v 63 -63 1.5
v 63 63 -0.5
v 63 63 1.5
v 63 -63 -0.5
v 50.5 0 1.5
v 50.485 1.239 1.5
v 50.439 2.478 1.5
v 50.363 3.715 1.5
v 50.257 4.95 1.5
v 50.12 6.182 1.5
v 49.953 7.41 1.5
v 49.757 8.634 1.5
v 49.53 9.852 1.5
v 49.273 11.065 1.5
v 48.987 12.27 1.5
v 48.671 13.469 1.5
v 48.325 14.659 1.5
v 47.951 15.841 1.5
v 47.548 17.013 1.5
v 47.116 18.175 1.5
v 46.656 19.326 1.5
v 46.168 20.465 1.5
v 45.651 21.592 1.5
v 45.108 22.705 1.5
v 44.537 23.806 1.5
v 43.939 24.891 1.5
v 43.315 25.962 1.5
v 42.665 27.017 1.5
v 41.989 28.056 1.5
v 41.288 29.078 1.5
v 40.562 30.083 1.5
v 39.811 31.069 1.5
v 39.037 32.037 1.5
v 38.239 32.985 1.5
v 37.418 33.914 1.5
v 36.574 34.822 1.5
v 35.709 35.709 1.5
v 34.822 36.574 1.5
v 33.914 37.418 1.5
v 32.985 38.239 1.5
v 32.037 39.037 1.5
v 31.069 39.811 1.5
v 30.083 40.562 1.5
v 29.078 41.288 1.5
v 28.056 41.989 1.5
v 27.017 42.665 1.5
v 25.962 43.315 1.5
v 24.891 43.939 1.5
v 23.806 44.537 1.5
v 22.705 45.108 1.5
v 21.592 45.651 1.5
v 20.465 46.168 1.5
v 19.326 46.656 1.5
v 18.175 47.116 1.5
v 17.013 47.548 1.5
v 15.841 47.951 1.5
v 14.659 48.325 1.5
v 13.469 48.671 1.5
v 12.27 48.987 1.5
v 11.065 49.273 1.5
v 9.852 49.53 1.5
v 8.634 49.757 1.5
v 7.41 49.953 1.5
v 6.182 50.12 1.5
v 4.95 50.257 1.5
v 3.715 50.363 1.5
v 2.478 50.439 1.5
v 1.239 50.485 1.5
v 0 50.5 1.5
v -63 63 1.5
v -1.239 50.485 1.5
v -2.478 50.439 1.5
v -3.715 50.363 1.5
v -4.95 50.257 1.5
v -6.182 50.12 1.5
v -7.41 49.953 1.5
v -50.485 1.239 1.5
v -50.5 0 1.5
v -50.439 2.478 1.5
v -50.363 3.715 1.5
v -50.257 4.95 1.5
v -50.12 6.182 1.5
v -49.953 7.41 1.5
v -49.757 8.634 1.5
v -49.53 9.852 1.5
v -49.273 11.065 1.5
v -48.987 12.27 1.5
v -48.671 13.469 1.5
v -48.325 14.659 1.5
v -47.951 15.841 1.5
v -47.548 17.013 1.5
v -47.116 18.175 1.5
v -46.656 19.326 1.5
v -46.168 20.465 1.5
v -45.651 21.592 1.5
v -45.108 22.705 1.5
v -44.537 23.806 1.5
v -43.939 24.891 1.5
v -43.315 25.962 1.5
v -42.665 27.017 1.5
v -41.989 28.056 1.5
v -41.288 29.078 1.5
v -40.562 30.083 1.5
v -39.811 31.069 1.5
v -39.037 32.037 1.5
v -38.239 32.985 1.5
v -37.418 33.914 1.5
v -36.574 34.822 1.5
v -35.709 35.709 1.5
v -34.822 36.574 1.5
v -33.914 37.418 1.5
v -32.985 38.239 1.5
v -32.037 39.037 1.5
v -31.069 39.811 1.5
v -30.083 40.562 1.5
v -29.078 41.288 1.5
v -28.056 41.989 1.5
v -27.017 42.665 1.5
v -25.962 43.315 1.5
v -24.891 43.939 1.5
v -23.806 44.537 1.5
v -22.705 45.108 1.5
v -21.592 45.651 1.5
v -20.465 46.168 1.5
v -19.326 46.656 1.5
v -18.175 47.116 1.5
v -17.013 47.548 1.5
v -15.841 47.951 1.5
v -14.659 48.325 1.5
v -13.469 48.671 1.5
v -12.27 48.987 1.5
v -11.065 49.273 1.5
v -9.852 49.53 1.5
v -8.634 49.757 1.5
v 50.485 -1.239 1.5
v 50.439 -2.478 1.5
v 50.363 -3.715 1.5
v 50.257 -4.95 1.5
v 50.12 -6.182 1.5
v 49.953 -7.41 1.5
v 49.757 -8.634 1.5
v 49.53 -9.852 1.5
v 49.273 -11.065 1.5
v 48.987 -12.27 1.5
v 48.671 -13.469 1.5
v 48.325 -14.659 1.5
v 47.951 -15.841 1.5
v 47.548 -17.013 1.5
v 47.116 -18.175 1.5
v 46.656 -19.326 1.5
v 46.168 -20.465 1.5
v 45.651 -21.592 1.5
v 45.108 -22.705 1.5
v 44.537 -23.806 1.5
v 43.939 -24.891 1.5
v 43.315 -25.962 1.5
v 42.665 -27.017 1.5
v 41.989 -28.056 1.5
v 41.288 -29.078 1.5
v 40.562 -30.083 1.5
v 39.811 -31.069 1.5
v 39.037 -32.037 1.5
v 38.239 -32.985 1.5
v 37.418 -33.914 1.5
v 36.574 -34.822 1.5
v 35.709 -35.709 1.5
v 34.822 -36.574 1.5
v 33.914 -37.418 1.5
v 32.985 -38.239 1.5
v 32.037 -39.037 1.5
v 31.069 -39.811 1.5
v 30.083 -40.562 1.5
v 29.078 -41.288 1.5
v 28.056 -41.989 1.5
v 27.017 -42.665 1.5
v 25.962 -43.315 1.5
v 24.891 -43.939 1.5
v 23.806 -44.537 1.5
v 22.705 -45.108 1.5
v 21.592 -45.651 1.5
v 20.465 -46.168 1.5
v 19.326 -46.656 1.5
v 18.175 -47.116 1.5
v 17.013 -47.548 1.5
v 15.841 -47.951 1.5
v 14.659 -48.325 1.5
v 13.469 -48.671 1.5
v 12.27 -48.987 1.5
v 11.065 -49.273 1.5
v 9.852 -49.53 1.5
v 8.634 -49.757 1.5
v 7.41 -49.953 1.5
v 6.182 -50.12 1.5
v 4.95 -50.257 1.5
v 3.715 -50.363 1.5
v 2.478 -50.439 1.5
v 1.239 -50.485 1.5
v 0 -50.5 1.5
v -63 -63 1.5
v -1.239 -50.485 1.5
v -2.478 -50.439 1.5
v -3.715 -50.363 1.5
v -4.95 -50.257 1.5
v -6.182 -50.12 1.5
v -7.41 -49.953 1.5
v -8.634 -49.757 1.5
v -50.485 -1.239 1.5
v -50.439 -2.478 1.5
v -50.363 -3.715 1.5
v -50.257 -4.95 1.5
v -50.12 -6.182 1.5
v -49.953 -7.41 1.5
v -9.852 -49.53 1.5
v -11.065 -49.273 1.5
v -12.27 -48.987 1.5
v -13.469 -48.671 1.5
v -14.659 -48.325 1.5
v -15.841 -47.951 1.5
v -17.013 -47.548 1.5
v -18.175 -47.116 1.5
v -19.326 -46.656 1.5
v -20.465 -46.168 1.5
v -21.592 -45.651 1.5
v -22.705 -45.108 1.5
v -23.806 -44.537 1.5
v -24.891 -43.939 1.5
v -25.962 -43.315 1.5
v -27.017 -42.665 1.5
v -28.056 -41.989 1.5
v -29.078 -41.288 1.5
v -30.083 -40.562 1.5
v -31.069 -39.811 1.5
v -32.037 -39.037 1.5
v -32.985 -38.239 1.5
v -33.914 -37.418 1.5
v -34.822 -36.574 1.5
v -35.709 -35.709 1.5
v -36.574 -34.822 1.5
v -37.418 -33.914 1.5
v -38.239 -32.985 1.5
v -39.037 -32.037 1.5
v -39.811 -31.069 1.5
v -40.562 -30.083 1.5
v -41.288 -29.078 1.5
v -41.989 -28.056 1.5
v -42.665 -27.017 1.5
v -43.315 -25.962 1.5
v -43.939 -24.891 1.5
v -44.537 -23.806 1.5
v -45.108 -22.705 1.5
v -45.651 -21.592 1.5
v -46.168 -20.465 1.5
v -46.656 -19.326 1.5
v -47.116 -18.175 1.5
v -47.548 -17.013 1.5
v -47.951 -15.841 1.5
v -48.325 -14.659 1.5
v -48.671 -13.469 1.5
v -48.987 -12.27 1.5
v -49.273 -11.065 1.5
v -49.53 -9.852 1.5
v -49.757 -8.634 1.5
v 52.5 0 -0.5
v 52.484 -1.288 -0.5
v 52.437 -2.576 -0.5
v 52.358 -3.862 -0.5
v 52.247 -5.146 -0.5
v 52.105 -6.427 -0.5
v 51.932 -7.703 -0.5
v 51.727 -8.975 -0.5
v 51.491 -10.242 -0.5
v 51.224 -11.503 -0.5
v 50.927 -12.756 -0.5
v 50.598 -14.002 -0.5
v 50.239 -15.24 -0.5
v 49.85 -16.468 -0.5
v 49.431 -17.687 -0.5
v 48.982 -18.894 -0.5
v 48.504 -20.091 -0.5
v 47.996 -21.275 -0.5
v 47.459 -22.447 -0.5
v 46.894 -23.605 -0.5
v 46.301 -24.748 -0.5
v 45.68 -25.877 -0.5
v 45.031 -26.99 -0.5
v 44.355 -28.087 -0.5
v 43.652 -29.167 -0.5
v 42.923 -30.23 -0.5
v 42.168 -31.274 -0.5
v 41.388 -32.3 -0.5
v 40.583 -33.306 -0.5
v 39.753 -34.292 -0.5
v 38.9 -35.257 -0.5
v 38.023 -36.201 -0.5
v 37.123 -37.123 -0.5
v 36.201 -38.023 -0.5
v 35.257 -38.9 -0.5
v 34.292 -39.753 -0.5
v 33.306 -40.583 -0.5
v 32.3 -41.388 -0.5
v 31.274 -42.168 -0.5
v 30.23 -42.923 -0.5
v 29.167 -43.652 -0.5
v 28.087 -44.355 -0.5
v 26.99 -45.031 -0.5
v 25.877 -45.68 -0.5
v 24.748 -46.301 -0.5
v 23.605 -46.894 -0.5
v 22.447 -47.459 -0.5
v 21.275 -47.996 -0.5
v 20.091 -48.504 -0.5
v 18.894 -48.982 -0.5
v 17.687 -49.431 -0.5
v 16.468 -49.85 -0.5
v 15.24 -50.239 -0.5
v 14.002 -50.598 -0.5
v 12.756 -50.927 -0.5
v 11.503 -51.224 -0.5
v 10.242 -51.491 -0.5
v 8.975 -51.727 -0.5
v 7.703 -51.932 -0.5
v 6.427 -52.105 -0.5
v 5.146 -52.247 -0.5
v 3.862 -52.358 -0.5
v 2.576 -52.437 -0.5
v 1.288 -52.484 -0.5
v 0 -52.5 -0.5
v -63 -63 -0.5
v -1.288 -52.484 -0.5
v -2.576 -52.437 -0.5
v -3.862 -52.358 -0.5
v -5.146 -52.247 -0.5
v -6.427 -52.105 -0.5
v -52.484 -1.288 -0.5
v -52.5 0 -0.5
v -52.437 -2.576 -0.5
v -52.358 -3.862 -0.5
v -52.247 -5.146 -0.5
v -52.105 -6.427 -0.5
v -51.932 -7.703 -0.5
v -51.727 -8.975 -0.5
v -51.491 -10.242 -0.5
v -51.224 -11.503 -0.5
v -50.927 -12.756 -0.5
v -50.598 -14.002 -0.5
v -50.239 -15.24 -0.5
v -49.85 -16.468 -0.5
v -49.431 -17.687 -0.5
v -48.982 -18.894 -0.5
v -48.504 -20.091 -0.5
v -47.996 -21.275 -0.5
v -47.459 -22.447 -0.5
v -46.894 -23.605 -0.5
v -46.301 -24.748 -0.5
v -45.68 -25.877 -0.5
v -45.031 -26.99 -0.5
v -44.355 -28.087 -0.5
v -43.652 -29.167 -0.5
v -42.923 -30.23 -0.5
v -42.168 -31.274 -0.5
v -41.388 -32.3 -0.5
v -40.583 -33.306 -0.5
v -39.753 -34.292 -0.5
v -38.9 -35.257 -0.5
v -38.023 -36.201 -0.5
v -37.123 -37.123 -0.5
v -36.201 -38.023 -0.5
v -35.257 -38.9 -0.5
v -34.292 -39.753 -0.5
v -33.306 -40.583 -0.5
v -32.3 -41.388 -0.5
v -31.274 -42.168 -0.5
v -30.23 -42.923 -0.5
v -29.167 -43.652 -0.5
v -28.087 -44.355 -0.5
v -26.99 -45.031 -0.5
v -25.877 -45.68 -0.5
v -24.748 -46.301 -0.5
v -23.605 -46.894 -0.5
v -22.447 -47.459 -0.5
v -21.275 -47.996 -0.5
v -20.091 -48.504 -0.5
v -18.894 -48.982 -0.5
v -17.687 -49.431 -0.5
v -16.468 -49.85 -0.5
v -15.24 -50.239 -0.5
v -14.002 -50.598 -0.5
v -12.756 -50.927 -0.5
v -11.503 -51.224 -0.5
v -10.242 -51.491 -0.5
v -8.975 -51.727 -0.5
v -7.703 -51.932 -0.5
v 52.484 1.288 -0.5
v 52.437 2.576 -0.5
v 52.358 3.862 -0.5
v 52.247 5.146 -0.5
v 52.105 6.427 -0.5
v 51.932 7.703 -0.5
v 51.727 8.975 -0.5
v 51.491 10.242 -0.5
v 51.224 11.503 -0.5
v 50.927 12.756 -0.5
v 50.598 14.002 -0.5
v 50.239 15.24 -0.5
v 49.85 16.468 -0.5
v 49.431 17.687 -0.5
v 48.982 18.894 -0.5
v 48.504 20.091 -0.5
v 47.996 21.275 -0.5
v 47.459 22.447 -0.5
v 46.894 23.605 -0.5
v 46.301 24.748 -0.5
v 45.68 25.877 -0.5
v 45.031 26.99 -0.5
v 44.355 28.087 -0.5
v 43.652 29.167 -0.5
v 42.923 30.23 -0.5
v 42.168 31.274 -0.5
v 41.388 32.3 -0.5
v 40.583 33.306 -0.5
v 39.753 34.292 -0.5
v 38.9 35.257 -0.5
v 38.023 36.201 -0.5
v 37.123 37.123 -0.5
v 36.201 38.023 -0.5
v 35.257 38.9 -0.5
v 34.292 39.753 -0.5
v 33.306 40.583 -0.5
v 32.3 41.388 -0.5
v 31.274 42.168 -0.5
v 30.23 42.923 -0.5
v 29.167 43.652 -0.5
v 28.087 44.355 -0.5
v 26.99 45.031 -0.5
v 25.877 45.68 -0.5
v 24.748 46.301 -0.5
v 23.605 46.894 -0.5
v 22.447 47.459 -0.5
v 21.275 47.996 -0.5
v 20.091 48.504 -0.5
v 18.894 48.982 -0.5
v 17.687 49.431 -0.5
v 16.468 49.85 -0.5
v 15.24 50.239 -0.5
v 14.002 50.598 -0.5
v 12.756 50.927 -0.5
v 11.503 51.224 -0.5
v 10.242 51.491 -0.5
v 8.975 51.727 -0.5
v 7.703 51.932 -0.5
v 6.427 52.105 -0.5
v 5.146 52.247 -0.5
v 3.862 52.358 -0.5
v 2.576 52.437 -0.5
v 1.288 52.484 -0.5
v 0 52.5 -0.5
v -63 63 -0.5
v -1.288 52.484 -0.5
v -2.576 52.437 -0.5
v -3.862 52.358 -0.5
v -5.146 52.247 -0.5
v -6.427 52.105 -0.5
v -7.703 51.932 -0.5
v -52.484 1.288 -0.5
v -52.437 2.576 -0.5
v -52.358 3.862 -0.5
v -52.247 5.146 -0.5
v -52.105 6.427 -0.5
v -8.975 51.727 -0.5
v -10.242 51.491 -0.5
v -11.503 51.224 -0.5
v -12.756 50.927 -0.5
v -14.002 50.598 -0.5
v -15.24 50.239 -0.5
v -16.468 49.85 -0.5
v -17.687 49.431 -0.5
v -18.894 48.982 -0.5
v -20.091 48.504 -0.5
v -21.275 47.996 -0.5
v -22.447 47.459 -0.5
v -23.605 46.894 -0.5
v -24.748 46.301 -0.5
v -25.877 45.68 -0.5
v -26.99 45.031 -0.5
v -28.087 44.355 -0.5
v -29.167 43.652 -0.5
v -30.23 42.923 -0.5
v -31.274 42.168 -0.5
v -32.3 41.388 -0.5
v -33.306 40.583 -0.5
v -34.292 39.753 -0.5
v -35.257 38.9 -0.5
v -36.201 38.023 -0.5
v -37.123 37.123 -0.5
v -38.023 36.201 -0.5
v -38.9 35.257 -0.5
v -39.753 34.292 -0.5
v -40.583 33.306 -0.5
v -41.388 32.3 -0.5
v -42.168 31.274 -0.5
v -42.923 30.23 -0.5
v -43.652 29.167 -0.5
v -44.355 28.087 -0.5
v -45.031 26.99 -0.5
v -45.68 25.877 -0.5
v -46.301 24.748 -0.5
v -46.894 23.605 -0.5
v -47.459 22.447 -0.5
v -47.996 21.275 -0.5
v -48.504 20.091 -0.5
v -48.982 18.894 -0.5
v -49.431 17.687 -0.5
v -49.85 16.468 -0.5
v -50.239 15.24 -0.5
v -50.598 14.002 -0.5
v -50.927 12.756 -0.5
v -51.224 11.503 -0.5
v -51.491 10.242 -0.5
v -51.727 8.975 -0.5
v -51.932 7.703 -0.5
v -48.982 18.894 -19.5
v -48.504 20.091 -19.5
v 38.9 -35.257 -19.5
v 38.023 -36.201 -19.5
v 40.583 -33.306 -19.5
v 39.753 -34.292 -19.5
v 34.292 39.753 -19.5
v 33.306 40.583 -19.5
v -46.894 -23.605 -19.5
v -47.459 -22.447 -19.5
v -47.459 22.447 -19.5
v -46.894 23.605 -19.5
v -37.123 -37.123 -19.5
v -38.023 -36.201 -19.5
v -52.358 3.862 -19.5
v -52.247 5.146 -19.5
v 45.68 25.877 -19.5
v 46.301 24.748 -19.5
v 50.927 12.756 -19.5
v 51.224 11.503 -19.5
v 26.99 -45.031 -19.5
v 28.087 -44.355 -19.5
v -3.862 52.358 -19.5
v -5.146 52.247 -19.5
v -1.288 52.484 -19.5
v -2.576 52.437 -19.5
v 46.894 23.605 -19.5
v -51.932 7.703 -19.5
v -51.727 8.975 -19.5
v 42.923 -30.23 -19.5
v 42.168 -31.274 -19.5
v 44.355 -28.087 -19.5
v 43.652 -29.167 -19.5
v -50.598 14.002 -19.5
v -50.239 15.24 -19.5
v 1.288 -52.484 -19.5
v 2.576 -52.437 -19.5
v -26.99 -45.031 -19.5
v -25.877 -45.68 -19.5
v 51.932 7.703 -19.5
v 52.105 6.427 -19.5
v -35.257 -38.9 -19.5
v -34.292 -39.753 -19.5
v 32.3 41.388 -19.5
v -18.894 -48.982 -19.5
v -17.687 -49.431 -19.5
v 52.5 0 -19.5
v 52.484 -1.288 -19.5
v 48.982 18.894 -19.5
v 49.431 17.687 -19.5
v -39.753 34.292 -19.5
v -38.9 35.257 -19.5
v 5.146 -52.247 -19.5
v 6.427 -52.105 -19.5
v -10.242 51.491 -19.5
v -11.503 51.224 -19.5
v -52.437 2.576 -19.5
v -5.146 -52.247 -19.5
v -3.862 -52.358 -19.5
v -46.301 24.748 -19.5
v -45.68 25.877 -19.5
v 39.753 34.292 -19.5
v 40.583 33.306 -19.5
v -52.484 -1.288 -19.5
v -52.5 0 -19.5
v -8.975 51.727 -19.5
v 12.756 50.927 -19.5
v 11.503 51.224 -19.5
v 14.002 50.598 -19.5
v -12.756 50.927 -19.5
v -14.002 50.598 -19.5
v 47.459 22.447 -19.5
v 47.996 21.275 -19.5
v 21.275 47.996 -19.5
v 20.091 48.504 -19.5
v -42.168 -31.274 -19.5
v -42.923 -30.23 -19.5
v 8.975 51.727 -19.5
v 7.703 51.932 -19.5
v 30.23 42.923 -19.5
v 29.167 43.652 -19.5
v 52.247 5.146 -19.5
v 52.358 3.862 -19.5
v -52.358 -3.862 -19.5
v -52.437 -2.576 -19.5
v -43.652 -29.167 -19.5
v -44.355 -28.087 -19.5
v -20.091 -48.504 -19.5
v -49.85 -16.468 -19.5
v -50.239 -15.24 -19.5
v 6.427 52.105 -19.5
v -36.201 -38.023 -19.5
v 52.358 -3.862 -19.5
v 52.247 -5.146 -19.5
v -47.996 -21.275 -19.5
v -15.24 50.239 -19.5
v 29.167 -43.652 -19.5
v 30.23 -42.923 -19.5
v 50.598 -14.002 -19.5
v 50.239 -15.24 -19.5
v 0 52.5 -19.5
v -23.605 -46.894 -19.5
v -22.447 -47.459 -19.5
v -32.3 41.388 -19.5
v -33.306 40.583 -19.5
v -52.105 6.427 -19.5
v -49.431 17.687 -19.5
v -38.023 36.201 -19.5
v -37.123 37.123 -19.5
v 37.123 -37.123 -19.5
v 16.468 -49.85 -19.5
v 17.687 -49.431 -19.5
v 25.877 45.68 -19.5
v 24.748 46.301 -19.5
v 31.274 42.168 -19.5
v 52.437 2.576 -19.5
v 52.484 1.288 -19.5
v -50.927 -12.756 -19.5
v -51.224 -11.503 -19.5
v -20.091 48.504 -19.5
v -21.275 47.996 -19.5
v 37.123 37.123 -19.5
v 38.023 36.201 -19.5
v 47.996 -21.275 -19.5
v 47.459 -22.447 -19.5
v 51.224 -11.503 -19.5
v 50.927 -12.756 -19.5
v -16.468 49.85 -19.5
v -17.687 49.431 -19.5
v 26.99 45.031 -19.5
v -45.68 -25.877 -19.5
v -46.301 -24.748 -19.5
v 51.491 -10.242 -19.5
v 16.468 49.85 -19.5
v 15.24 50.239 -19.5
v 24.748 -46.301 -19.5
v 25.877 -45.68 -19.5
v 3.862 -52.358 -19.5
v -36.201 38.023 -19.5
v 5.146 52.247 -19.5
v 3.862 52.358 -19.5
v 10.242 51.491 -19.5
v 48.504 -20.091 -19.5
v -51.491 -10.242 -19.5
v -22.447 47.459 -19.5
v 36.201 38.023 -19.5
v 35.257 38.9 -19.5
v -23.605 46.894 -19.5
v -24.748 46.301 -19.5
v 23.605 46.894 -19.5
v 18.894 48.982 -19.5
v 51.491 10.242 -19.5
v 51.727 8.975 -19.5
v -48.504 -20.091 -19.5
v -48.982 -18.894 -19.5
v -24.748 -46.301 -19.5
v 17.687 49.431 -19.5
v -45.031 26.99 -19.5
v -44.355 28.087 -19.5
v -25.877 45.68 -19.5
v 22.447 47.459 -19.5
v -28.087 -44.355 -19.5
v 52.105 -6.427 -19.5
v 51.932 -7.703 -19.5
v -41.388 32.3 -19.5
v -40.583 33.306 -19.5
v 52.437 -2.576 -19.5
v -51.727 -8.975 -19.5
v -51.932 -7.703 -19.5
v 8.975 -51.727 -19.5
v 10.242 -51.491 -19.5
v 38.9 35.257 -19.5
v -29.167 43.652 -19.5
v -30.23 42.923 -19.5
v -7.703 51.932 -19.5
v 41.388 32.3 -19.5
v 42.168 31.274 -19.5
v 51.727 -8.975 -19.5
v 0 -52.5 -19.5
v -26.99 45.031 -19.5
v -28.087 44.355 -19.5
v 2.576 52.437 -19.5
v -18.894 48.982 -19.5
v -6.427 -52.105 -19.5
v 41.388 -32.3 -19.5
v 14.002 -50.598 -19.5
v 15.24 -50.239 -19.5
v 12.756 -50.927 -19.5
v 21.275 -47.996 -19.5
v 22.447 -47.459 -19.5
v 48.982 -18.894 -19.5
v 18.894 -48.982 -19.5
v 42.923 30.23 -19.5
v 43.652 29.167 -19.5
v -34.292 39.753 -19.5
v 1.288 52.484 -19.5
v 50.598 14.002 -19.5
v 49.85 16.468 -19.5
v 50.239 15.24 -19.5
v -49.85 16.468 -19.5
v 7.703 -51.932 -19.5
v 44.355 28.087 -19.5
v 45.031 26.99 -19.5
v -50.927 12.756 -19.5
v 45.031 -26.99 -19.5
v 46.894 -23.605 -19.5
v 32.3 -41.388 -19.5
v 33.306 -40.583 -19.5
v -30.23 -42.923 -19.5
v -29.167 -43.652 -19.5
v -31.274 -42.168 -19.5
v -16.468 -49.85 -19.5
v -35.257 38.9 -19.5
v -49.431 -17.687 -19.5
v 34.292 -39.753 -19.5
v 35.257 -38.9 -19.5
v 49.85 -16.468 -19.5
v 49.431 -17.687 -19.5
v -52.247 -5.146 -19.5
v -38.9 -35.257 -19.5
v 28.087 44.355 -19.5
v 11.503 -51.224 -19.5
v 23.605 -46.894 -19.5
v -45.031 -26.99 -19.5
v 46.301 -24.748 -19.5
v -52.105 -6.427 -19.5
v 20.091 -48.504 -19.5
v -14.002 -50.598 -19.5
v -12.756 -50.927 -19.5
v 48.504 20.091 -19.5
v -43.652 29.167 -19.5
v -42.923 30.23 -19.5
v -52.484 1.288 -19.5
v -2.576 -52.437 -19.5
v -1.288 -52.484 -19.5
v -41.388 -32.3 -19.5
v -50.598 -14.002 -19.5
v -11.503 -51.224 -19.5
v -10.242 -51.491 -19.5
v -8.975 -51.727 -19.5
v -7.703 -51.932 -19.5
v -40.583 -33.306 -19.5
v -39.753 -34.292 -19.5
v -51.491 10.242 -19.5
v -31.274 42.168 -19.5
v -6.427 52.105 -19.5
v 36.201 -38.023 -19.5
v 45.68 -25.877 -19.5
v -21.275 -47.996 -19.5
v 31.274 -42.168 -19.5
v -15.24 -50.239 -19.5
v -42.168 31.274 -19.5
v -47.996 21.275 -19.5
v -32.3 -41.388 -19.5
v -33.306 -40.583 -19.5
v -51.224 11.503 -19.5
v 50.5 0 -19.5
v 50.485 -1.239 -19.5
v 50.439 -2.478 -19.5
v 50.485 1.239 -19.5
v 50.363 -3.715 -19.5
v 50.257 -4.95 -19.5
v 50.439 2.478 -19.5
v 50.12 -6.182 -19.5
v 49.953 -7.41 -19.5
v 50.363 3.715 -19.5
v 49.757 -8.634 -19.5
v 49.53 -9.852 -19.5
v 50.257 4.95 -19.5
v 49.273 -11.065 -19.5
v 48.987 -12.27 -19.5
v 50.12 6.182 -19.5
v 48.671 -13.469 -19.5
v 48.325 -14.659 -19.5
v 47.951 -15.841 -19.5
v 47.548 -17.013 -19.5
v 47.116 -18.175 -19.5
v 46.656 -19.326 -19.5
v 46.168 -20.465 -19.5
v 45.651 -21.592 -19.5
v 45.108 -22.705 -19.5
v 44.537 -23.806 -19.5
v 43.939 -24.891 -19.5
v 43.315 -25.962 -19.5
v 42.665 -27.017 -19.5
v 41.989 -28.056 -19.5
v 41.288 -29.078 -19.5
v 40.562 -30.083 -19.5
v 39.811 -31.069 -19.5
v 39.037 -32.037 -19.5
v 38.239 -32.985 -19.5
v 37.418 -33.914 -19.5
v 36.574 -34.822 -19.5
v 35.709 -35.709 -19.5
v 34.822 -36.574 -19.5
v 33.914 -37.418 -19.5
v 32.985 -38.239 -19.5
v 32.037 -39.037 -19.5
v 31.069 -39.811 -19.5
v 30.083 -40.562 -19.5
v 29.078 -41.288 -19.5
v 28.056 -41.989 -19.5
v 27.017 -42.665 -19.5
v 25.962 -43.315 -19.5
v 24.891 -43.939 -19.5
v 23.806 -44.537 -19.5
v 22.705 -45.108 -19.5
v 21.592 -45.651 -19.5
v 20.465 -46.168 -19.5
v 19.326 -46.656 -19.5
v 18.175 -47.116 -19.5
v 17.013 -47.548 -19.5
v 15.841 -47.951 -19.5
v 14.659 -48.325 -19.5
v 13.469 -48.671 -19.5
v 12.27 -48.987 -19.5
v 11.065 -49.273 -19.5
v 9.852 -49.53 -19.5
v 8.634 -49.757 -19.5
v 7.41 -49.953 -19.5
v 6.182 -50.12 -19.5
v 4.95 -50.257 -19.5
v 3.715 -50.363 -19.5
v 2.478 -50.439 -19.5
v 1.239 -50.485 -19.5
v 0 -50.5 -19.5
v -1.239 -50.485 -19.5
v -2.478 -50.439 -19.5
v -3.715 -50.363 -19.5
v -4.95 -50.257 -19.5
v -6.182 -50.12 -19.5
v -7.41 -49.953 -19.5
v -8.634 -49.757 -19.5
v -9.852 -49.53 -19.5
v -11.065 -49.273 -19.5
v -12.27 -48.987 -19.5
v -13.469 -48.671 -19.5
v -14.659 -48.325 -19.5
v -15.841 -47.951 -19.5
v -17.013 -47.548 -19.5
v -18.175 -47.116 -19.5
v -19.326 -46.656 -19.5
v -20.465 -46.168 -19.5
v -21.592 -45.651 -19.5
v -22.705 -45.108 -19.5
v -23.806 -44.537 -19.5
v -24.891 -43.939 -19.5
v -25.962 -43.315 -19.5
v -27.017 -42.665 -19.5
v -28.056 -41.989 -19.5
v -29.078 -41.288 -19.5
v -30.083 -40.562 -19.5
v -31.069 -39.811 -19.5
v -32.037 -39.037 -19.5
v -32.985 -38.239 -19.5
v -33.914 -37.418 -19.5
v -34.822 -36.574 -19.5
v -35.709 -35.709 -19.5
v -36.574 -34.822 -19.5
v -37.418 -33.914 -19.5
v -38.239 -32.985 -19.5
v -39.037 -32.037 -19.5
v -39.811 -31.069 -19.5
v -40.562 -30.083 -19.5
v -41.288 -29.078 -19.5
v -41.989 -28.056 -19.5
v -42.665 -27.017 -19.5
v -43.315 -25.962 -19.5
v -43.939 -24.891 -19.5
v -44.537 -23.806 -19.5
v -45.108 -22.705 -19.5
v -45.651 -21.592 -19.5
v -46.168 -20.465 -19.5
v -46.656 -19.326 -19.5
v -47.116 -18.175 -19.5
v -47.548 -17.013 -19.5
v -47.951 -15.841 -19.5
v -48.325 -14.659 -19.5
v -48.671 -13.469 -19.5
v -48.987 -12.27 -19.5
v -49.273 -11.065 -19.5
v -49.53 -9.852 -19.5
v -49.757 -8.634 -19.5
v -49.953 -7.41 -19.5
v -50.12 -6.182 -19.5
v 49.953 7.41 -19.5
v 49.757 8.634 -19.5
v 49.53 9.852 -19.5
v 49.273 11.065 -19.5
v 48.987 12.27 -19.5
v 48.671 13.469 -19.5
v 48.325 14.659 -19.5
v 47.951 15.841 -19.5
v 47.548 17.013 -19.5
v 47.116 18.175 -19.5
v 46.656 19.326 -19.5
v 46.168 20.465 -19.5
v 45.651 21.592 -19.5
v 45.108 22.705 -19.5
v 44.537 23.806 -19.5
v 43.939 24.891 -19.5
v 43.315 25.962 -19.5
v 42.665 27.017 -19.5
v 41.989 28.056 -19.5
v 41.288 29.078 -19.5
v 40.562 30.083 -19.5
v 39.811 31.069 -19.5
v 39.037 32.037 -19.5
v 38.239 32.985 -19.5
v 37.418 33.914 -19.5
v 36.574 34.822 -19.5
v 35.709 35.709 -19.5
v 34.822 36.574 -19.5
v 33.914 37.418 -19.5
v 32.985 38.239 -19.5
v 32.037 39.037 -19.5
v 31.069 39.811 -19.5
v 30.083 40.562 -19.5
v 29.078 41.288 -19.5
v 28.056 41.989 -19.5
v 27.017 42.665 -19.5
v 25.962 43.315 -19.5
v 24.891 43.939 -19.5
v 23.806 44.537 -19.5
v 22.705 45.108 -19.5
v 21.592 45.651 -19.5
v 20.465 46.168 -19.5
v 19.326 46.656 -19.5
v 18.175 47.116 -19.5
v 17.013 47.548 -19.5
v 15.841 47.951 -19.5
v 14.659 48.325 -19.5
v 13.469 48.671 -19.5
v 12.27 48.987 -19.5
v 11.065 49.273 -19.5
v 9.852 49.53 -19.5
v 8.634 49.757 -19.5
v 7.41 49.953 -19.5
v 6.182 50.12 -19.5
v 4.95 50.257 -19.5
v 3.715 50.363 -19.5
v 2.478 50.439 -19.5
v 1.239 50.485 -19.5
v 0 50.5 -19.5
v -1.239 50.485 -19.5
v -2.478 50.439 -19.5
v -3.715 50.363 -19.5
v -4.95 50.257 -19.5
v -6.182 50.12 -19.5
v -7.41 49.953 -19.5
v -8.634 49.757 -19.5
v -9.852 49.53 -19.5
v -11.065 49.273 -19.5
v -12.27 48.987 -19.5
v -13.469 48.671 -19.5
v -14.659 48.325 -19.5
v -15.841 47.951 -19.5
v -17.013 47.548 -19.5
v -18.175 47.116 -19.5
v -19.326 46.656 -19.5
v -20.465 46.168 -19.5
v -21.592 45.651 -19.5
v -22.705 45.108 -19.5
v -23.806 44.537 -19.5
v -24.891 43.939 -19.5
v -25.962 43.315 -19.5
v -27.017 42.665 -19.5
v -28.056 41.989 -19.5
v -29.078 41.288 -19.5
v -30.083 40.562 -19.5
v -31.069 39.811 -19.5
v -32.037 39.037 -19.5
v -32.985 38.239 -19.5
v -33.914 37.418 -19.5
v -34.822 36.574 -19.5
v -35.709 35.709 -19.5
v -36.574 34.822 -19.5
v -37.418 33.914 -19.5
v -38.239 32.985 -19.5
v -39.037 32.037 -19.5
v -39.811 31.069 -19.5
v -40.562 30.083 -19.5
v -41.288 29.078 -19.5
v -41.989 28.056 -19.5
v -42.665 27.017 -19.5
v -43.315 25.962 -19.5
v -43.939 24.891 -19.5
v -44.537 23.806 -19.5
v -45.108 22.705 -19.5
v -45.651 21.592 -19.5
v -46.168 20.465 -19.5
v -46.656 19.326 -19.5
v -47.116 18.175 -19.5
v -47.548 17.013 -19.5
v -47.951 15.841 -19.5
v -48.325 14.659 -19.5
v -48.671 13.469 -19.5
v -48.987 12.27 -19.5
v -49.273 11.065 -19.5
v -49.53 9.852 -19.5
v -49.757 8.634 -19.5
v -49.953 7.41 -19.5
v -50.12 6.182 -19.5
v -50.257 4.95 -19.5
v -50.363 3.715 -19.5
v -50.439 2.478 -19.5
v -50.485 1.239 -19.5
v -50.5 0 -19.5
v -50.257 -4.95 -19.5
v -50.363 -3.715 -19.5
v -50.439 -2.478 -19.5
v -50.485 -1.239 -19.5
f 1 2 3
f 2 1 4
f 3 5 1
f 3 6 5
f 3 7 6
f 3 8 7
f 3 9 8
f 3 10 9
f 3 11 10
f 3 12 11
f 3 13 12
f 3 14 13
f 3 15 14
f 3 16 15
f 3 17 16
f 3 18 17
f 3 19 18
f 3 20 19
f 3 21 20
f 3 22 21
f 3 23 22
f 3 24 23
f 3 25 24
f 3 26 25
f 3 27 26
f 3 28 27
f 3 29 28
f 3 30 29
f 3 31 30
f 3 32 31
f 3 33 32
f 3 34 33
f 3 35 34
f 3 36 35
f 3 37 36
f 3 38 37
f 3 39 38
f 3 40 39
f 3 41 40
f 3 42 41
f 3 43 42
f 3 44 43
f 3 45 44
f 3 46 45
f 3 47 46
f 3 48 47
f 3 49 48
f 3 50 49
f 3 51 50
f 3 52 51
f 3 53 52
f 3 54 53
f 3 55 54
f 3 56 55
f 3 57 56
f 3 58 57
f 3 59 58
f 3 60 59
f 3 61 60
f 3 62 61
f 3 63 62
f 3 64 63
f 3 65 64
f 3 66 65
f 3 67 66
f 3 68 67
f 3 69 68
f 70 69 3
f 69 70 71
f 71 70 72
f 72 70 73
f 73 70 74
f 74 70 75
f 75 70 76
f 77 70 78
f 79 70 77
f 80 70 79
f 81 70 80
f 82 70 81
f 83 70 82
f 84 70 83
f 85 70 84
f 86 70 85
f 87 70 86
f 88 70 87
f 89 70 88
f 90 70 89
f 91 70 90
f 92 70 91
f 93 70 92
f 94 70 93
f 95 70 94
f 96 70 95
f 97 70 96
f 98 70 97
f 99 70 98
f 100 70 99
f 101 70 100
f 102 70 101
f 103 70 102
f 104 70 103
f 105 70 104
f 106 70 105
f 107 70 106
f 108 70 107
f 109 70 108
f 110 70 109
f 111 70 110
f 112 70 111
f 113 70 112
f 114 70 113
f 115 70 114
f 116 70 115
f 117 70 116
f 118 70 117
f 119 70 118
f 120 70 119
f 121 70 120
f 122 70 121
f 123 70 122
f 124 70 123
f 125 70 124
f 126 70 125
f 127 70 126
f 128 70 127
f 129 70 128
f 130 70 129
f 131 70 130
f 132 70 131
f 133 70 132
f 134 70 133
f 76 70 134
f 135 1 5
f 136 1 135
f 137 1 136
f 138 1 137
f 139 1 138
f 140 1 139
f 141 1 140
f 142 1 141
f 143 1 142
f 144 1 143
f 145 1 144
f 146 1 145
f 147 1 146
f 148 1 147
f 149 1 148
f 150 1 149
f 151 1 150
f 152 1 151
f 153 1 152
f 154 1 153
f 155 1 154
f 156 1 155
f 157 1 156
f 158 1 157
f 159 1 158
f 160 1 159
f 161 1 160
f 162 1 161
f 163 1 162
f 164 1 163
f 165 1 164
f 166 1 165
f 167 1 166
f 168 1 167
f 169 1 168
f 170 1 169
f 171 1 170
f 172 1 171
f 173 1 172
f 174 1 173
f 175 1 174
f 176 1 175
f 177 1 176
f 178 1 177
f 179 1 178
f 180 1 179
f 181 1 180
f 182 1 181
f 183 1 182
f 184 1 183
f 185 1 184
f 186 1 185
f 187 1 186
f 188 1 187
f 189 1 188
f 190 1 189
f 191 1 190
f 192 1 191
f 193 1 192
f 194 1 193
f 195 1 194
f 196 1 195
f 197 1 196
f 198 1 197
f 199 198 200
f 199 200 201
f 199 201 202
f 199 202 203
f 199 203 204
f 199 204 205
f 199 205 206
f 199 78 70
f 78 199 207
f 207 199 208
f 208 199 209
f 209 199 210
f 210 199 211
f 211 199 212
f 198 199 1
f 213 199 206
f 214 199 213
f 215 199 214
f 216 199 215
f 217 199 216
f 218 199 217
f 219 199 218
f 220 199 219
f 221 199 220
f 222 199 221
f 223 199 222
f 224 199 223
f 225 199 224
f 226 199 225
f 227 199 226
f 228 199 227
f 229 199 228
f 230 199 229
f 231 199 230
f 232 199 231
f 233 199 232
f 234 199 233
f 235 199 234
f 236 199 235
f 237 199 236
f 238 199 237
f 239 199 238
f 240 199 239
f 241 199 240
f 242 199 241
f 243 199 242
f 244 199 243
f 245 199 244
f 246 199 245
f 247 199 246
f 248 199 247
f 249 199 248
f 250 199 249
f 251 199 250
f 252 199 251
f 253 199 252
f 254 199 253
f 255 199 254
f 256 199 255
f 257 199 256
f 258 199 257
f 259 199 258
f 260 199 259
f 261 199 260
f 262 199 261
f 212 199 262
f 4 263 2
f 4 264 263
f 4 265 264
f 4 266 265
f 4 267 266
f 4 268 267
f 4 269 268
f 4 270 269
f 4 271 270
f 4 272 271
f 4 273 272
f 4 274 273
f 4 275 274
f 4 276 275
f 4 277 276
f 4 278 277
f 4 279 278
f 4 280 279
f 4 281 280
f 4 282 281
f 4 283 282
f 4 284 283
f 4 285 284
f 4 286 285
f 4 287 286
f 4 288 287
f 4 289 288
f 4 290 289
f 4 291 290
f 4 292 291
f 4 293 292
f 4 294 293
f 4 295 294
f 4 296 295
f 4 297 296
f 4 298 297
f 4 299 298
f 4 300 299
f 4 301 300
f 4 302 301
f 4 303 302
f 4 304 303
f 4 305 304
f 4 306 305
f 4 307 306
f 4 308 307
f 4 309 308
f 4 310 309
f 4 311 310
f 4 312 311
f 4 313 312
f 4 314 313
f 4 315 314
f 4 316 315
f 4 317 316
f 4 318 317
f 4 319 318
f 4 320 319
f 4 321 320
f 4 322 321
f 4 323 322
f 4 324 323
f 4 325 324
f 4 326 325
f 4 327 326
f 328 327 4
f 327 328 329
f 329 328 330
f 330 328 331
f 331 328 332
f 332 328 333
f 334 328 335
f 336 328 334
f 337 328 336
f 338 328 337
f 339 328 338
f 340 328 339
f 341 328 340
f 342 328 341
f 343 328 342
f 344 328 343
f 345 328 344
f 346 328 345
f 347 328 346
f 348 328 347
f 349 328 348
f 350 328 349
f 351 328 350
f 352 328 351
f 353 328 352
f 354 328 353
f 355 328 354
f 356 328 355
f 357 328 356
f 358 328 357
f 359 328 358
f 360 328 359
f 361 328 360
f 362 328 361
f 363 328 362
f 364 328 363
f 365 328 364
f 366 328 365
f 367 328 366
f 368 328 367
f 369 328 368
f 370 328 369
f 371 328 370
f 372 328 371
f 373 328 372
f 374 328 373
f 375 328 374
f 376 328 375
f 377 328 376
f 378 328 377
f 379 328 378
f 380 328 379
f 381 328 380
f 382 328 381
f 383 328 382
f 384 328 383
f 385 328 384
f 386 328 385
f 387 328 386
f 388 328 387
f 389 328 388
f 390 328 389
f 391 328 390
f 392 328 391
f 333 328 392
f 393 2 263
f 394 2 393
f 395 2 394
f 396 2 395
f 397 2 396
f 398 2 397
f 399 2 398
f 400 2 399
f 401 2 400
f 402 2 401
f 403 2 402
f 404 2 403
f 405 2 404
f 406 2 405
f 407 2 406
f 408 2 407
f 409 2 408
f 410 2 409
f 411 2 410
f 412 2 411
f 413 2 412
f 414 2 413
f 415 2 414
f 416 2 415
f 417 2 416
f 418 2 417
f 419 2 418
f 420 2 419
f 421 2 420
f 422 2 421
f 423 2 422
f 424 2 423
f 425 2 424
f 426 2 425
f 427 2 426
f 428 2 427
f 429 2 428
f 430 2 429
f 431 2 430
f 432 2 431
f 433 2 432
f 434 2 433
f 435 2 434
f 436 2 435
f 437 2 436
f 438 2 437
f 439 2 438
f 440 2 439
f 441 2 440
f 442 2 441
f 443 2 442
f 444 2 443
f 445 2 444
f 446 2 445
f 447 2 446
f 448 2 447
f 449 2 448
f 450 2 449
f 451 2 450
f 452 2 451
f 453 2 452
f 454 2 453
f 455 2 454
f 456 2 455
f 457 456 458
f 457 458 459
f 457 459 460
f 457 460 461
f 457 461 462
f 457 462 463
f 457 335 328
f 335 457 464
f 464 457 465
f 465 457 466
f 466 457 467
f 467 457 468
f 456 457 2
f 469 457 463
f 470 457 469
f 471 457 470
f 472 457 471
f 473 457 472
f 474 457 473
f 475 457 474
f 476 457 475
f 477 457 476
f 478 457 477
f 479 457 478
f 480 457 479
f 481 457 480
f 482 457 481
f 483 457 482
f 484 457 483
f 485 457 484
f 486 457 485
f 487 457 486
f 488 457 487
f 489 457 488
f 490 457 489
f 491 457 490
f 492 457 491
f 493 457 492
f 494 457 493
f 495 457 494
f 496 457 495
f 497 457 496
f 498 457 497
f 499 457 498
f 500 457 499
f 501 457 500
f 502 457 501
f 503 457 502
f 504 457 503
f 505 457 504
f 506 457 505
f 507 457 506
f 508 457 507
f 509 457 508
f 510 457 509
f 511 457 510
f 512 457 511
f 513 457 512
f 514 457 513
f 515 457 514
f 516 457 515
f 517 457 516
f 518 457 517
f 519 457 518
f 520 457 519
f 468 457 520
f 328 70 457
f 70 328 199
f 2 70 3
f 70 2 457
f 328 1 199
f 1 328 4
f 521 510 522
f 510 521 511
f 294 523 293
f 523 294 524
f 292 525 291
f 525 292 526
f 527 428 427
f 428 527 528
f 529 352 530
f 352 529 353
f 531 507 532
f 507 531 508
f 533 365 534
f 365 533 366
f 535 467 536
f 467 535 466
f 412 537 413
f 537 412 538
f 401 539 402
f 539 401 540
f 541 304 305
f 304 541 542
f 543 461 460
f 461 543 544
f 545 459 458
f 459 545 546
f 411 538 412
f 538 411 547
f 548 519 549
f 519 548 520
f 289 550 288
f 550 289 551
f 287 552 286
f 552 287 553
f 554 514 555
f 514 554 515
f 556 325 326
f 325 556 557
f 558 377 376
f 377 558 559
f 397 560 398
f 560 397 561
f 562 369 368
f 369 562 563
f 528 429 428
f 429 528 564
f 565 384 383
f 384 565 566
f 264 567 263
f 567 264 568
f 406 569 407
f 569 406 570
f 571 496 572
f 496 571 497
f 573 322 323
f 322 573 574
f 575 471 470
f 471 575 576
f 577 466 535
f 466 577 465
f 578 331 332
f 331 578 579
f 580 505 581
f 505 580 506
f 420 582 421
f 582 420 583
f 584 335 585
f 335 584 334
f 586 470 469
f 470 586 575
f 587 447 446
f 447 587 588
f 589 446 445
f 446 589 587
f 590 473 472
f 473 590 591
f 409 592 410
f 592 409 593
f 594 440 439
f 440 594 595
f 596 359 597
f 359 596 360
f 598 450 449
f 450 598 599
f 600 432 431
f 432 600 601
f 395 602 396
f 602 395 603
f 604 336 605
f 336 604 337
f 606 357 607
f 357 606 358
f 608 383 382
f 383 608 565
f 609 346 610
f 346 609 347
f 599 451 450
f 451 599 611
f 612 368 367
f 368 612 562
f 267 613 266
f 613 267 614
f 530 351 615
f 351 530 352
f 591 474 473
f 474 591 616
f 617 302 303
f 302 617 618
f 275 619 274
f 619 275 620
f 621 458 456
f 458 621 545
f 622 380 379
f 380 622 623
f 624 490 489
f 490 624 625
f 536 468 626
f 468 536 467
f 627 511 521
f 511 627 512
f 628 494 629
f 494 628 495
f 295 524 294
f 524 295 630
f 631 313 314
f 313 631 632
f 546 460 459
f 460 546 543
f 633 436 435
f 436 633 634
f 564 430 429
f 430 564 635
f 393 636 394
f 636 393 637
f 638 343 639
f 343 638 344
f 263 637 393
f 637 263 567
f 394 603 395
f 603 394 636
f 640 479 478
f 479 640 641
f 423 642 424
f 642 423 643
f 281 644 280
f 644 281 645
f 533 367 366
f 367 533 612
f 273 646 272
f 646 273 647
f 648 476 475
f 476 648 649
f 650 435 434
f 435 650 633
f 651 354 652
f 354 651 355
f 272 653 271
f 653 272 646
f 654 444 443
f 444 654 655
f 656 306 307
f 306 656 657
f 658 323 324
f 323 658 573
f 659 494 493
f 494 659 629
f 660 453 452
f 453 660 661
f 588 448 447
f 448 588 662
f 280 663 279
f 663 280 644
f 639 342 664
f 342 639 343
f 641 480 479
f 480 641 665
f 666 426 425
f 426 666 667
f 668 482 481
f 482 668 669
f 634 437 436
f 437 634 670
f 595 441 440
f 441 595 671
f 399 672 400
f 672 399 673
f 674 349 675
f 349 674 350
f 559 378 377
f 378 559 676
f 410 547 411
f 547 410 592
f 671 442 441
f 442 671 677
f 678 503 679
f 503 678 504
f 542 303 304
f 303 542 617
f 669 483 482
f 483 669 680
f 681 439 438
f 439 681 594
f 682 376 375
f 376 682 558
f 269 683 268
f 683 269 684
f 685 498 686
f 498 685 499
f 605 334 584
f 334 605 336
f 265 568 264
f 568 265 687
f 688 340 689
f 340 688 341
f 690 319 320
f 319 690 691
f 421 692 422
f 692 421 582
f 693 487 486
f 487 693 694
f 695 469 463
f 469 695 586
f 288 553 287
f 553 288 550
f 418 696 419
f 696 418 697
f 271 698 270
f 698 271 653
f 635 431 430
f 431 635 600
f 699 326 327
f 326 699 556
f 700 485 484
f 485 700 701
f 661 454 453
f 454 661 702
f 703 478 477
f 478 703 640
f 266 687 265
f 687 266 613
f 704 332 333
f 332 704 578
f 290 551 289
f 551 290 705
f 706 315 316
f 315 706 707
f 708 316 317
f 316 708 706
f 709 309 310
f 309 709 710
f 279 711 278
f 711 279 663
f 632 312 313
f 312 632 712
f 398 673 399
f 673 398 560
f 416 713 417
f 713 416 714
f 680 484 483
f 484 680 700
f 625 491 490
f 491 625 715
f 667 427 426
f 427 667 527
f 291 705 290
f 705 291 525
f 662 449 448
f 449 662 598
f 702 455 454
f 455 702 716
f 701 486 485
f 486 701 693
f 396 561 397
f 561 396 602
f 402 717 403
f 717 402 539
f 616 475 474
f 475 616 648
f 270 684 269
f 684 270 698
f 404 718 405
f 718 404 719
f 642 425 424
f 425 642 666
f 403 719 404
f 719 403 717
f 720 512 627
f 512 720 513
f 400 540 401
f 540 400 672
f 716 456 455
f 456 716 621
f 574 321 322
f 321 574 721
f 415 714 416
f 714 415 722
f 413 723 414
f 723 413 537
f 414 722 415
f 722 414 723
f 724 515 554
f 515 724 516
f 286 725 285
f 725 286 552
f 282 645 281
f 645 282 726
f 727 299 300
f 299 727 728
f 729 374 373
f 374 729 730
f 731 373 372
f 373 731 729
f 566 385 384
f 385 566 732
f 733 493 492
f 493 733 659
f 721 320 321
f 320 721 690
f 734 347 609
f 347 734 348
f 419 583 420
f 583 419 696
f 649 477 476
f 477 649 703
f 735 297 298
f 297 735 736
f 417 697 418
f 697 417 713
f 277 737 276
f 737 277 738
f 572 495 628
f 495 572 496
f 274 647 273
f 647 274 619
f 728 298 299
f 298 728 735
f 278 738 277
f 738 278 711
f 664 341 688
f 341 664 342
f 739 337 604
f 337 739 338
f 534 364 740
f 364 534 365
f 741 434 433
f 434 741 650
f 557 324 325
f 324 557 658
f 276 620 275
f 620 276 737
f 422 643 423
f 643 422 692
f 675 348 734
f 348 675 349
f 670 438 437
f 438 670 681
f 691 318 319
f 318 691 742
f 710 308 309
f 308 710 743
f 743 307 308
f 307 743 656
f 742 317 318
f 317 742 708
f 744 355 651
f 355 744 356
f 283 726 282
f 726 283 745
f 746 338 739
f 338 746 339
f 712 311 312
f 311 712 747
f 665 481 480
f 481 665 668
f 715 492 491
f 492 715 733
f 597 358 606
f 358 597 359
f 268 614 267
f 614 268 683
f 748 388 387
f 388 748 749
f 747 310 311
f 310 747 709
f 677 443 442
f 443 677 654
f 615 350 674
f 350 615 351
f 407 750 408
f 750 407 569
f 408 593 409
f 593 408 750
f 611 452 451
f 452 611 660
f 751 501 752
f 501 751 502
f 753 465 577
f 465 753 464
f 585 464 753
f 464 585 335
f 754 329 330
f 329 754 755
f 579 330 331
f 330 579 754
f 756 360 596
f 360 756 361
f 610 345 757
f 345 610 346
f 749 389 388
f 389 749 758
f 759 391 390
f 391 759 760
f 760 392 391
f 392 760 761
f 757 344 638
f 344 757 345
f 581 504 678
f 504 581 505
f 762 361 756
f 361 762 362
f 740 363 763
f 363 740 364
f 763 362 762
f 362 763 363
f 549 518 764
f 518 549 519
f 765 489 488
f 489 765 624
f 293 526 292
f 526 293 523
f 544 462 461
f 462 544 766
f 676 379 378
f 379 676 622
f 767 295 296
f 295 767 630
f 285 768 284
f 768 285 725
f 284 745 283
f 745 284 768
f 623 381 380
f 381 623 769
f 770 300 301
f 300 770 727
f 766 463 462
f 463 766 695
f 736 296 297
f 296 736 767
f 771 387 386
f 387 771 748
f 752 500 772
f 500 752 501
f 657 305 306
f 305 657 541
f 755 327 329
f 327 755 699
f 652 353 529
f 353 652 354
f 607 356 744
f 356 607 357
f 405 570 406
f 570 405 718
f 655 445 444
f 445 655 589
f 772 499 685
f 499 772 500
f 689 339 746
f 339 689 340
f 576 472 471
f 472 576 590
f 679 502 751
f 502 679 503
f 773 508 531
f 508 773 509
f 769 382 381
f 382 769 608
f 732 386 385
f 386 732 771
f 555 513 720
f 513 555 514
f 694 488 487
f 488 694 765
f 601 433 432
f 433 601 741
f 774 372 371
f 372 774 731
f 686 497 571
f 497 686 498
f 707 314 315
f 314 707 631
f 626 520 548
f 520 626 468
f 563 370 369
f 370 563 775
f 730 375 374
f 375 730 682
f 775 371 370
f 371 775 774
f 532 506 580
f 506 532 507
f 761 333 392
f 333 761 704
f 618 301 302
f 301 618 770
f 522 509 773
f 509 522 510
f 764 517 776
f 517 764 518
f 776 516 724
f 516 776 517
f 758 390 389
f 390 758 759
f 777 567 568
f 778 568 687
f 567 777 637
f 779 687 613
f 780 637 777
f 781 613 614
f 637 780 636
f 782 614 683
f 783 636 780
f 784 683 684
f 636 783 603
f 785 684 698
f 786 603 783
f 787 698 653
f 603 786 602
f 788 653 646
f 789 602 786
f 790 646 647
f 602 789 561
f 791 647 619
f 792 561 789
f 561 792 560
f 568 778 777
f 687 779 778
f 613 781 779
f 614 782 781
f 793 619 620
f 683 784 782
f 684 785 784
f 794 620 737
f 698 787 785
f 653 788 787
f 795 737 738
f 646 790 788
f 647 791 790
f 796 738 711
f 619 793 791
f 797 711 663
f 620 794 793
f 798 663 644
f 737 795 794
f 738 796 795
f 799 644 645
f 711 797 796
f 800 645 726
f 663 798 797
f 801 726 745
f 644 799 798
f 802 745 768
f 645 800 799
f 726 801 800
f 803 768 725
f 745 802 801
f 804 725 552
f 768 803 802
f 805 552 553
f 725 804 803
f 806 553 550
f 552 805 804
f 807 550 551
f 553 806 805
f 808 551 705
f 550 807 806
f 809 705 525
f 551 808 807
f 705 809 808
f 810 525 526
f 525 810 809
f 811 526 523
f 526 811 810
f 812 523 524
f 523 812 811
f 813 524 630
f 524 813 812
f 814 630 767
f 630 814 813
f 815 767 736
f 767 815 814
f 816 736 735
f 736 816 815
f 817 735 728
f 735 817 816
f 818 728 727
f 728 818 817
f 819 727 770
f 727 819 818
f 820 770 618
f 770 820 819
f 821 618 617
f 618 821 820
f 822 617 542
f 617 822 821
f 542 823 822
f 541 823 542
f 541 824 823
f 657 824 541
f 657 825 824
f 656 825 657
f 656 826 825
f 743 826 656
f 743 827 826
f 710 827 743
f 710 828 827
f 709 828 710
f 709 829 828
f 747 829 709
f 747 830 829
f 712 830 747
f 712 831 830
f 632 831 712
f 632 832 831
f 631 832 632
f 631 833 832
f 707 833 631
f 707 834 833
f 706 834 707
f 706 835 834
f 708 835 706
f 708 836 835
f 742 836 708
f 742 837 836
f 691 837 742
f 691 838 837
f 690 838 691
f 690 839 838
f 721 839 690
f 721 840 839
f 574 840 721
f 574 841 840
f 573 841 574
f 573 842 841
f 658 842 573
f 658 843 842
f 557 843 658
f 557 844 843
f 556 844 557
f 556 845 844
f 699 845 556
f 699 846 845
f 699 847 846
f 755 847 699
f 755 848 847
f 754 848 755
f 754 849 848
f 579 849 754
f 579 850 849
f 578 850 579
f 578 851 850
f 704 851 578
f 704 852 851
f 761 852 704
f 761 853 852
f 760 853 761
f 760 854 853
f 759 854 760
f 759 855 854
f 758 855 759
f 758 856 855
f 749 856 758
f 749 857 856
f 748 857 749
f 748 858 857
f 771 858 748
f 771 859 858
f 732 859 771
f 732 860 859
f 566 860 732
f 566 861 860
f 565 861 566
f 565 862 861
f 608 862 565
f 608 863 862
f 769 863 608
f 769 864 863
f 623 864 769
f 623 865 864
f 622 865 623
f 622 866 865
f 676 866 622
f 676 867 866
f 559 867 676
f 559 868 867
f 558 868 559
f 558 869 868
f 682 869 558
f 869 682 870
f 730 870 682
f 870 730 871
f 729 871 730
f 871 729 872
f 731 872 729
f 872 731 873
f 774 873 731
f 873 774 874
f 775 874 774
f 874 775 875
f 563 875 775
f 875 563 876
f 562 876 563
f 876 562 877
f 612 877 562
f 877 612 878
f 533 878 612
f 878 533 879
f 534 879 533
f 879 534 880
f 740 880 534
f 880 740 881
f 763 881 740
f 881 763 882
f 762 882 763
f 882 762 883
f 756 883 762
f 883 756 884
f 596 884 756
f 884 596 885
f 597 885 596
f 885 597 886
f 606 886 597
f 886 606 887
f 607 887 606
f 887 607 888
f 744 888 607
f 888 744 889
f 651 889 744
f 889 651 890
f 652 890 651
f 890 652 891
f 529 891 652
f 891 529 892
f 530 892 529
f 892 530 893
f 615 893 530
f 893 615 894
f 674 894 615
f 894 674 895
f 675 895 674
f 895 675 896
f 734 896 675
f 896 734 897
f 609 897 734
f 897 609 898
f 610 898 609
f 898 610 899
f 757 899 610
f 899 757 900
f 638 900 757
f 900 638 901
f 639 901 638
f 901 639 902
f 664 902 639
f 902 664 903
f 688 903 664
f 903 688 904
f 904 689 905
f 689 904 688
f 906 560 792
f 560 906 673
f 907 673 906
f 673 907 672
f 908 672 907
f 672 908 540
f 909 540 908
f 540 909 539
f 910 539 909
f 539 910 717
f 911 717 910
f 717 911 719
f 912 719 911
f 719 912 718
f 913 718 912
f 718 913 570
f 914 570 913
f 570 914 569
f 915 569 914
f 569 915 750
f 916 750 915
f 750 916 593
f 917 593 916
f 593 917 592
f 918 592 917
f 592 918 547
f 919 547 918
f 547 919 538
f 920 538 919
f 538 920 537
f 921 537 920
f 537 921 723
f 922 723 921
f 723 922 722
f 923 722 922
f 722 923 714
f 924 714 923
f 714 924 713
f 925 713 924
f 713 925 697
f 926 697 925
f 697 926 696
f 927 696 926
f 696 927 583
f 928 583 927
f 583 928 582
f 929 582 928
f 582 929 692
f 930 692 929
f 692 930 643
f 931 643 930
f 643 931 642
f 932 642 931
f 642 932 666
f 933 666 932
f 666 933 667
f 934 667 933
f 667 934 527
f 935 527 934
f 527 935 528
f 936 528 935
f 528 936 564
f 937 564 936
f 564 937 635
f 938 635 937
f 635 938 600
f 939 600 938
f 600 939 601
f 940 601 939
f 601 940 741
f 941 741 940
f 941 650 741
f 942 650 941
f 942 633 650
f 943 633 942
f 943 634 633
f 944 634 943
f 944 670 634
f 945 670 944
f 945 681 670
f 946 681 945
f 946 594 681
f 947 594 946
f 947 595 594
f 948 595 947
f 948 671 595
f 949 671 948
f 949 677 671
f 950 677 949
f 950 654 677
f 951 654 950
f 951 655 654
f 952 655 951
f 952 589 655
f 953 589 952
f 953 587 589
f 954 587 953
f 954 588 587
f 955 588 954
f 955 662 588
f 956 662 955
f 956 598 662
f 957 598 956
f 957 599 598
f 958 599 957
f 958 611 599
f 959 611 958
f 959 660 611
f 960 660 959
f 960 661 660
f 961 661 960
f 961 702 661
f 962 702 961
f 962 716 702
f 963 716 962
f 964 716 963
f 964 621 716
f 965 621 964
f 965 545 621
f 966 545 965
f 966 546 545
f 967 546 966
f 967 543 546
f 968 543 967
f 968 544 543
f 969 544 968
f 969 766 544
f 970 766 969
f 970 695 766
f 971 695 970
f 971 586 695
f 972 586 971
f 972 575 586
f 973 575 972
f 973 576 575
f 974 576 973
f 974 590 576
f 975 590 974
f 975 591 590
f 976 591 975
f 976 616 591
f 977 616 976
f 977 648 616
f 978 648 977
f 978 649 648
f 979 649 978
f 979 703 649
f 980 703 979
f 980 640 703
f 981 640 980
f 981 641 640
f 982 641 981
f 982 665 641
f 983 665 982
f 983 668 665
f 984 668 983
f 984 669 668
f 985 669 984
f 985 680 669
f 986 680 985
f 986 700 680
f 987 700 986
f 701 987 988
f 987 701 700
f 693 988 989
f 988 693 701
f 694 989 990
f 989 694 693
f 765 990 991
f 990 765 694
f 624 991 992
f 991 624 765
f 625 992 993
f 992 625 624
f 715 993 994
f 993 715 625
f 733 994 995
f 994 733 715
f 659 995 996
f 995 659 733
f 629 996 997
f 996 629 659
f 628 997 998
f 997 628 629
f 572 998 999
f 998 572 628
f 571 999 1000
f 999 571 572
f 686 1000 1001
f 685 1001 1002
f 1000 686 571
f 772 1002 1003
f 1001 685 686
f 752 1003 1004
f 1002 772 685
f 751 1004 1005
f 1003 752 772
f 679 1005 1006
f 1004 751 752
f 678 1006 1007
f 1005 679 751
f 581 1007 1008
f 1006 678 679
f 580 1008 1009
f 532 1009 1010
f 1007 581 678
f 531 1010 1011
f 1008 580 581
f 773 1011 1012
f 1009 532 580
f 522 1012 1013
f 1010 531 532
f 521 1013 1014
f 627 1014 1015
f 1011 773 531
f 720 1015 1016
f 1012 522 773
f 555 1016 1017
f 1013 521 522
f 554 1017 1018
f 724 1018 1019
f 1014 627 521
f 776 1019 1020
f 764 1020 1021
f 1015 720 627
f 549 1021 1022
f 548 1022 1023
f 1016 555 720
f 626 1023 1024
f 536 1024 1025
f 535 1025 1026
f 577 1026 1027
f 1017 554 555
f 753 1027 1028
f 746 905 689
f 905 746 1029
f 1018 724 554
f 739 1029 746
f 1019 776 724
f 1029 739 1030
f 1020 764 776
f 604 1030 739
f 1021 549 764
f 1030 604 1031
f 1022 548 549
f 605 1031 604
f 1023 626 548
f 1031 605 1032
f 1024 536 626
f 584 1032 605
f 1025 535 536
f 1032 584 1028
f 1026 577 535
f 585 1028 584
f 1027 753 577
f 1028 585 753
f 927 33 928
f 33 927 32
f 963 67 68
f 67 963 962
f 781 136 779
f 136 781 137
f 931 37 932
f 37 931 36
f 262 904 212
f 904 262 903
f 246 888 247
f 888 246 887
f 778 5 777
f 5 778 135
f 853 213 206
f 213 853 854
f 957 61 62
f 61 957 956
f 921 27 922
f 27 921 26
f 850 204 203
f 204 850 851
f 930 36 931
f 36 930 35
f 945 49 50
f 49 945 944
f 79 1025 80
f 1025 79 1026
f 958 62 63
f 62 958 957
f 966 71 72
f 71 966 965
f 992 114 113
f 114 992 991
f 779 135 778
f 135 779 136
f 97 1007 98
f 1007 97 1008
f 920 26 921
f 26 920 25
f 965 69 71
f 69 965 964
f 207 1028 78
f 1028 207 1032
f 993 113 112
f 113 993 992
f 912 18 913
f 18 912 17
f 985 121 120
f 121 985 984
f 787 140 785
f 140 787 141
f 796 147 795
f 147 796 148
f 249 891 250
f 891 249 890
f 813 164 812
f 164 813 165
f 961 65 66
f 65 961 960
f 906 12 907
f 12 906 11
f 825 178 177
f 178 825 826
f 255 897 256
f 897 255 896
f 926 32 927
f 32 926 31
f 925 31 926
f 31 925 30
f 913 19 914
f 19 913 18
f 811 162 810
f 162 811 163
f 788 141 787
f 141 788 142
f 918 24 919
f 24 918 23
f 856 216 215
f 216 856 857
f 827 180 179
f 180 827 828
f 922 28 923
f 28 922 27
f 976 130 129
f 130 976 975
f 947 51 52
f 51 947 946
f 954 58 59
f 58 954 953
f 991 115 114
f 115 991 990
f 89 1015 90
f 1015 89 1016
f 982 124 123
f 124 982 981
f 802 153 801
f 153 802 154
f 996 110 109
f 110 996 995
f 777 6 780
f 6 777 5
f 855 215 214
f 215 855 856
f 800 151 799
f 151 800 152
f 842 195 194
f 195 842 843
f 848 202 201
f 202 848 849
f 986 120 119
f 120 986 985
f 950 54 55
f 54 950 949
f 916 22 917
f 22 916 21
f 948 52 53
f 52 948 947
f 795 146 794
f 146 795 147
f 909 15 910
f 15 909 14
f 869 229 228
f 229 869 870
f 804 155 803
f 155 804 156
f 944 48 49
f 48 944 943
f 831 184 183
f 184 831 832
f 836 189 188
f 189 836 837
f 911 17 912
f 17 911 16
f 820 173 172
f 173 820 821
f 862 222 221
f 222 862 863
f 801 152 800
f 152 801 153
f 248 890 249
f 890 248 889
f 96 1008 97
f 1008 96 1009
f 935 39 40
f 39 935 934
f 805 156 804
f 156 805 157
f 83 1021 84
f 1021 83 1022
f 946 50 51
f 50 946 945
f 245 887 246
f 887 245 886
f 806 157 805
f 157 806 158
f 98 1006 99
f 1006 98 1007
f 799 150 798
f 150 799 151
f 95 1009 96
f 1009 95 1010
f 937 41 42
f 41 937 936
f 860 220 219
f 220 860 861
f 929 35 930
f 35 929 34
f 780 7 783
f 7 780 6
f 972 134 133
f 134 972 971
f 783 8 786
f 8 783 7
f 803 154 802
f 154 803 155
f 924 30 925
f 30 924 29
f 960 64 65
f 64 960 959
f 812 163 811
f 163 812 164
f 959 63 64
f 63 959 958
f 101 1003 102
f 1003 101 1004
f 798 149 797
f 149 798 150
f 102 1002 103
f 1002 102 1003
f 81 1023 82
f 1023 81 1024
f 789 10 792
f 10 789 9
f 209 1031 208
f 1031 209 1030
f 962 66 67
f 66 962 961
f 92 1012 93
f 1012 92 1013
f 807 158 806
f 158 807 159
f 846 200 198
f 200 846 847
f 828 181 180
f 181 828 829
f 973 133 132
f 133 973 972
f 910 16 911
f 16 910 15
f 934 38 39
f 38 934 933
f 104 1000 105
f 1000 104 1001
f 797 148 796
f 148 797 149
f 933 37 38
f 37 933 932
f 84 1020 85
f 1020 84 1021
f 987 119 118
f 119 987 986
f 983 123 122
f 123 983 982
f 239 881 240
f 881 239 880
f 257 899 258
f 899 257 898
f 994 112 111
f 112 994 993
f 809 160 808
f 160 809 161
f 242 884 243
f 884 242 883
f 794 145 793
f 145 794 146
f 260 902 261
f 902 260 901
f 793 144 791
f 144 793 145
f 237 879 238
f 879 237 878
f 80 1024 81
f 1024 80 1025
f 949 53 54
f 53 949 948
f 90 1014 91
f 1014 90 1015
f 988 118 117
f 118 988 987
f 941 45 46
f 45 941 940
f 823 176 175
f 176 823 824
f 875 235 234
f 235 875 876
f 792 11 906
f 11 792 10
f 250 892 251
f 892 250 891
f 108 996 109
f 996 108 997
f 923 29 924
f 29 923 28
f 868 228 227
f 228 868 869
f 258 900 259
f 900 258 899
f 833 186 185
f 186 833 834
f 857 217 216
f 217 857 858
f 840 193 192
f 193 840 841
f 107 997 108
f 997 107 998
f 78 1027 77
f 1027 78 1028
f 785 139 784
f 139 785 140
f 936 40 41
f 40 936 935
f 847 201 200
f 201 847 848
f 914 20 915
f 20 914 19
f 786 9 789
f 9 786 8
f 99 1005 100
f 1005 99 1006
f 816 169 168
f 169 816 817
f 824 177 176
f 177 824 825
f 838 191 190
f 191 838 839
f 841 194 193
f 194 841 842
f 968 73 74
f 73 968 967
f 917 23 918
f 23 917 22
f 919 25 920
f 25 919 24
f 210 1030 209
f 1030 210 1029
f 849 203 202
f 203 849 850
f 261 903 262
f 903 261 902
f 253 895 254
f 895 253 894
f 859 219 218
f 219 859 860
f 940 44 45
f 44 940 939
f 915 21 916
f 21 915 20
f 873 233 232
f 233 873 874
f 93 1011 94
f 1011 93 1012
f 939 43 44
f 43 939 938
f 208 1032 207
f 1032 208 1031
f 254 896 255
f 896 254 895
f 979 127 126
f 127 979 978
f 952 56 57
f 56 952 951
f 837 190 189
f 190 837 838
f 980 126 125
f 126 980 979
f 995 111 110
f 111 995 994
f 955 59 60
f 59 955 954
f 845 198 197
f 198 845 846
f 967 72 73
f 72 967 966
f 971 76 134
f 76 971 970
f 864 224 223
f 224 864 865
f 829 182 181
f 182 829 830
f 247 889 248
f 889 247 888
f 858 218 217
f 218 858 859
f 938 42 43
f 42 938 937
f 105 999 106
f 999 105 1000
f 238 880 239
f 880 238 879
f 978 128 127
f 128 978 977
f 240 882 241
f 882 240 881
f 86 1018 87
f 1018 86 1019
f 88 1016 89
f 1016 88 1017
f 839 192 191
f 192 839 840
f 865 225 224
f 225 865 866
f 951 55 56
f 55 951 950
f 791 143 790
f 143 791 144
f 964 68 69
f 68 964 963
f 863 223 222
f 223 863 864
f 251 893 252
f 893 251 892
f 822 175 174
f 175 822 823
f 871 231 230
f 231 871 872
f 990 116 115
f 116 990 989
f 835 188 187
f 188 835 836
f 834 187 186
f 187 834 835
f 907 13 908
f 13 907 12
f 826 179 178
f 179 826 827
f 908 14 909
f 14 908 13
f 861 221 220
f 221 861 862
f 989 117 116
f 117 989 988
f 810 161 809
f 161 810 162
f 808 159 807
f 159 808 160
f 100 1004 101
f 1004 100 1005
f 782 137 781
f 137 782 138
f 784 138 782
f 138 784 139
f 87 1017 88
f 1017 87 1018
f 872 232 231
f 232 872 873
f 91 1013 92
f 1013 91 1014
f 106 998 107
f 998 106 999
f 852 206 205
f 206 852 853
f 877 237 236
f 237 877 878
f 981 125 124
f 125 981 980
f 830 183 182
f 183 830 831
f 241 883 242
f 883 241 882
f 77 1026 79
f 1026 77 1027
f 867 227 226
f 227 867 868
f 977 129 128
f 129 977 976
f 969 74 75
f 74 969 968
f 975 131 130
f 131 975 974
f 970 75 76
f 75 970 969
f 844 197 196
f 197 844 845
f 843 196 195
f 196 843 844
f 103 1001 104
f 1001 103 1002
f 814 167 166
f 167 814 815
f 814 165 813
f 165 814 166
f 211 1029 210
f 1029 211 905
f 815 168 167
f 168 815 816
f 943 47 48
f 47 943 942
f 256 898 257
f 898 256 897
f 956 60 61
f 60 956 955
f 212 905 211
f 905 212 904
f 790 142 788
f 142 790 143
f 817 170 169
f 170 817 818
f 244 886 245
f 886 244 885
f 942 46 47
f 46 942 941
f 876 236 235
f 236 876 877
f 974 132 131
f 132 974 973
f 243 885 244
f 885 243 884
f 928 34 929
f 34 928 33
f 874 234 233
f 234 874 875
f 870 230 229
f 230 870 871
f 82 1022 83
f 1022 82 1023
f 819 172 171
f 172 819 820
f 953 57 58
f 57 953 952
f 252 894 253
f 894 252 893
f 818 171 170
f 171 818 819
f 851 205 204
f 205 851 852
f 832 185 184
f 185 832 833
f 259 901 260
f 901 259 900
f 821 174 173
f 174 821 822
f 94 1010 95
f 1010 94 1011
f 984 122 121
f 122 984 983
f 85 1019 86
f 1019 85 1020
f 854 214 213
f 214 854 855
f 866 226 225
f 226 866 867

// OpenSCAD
//rotate([180,0,0])

//cylinder(d=102+2*4*2,h=10);

//cylinder(d=102,h=30);
$fn=128*2;

difference(){
union(){
translate([0,0,1/2])
cube([126,126,2],center=true);
translate([0,0,-19.5])
cylinder(d=101+4,h=20);
}
translate([0,0,-50+20-1])
cylinder(d=101,h=52);
}
